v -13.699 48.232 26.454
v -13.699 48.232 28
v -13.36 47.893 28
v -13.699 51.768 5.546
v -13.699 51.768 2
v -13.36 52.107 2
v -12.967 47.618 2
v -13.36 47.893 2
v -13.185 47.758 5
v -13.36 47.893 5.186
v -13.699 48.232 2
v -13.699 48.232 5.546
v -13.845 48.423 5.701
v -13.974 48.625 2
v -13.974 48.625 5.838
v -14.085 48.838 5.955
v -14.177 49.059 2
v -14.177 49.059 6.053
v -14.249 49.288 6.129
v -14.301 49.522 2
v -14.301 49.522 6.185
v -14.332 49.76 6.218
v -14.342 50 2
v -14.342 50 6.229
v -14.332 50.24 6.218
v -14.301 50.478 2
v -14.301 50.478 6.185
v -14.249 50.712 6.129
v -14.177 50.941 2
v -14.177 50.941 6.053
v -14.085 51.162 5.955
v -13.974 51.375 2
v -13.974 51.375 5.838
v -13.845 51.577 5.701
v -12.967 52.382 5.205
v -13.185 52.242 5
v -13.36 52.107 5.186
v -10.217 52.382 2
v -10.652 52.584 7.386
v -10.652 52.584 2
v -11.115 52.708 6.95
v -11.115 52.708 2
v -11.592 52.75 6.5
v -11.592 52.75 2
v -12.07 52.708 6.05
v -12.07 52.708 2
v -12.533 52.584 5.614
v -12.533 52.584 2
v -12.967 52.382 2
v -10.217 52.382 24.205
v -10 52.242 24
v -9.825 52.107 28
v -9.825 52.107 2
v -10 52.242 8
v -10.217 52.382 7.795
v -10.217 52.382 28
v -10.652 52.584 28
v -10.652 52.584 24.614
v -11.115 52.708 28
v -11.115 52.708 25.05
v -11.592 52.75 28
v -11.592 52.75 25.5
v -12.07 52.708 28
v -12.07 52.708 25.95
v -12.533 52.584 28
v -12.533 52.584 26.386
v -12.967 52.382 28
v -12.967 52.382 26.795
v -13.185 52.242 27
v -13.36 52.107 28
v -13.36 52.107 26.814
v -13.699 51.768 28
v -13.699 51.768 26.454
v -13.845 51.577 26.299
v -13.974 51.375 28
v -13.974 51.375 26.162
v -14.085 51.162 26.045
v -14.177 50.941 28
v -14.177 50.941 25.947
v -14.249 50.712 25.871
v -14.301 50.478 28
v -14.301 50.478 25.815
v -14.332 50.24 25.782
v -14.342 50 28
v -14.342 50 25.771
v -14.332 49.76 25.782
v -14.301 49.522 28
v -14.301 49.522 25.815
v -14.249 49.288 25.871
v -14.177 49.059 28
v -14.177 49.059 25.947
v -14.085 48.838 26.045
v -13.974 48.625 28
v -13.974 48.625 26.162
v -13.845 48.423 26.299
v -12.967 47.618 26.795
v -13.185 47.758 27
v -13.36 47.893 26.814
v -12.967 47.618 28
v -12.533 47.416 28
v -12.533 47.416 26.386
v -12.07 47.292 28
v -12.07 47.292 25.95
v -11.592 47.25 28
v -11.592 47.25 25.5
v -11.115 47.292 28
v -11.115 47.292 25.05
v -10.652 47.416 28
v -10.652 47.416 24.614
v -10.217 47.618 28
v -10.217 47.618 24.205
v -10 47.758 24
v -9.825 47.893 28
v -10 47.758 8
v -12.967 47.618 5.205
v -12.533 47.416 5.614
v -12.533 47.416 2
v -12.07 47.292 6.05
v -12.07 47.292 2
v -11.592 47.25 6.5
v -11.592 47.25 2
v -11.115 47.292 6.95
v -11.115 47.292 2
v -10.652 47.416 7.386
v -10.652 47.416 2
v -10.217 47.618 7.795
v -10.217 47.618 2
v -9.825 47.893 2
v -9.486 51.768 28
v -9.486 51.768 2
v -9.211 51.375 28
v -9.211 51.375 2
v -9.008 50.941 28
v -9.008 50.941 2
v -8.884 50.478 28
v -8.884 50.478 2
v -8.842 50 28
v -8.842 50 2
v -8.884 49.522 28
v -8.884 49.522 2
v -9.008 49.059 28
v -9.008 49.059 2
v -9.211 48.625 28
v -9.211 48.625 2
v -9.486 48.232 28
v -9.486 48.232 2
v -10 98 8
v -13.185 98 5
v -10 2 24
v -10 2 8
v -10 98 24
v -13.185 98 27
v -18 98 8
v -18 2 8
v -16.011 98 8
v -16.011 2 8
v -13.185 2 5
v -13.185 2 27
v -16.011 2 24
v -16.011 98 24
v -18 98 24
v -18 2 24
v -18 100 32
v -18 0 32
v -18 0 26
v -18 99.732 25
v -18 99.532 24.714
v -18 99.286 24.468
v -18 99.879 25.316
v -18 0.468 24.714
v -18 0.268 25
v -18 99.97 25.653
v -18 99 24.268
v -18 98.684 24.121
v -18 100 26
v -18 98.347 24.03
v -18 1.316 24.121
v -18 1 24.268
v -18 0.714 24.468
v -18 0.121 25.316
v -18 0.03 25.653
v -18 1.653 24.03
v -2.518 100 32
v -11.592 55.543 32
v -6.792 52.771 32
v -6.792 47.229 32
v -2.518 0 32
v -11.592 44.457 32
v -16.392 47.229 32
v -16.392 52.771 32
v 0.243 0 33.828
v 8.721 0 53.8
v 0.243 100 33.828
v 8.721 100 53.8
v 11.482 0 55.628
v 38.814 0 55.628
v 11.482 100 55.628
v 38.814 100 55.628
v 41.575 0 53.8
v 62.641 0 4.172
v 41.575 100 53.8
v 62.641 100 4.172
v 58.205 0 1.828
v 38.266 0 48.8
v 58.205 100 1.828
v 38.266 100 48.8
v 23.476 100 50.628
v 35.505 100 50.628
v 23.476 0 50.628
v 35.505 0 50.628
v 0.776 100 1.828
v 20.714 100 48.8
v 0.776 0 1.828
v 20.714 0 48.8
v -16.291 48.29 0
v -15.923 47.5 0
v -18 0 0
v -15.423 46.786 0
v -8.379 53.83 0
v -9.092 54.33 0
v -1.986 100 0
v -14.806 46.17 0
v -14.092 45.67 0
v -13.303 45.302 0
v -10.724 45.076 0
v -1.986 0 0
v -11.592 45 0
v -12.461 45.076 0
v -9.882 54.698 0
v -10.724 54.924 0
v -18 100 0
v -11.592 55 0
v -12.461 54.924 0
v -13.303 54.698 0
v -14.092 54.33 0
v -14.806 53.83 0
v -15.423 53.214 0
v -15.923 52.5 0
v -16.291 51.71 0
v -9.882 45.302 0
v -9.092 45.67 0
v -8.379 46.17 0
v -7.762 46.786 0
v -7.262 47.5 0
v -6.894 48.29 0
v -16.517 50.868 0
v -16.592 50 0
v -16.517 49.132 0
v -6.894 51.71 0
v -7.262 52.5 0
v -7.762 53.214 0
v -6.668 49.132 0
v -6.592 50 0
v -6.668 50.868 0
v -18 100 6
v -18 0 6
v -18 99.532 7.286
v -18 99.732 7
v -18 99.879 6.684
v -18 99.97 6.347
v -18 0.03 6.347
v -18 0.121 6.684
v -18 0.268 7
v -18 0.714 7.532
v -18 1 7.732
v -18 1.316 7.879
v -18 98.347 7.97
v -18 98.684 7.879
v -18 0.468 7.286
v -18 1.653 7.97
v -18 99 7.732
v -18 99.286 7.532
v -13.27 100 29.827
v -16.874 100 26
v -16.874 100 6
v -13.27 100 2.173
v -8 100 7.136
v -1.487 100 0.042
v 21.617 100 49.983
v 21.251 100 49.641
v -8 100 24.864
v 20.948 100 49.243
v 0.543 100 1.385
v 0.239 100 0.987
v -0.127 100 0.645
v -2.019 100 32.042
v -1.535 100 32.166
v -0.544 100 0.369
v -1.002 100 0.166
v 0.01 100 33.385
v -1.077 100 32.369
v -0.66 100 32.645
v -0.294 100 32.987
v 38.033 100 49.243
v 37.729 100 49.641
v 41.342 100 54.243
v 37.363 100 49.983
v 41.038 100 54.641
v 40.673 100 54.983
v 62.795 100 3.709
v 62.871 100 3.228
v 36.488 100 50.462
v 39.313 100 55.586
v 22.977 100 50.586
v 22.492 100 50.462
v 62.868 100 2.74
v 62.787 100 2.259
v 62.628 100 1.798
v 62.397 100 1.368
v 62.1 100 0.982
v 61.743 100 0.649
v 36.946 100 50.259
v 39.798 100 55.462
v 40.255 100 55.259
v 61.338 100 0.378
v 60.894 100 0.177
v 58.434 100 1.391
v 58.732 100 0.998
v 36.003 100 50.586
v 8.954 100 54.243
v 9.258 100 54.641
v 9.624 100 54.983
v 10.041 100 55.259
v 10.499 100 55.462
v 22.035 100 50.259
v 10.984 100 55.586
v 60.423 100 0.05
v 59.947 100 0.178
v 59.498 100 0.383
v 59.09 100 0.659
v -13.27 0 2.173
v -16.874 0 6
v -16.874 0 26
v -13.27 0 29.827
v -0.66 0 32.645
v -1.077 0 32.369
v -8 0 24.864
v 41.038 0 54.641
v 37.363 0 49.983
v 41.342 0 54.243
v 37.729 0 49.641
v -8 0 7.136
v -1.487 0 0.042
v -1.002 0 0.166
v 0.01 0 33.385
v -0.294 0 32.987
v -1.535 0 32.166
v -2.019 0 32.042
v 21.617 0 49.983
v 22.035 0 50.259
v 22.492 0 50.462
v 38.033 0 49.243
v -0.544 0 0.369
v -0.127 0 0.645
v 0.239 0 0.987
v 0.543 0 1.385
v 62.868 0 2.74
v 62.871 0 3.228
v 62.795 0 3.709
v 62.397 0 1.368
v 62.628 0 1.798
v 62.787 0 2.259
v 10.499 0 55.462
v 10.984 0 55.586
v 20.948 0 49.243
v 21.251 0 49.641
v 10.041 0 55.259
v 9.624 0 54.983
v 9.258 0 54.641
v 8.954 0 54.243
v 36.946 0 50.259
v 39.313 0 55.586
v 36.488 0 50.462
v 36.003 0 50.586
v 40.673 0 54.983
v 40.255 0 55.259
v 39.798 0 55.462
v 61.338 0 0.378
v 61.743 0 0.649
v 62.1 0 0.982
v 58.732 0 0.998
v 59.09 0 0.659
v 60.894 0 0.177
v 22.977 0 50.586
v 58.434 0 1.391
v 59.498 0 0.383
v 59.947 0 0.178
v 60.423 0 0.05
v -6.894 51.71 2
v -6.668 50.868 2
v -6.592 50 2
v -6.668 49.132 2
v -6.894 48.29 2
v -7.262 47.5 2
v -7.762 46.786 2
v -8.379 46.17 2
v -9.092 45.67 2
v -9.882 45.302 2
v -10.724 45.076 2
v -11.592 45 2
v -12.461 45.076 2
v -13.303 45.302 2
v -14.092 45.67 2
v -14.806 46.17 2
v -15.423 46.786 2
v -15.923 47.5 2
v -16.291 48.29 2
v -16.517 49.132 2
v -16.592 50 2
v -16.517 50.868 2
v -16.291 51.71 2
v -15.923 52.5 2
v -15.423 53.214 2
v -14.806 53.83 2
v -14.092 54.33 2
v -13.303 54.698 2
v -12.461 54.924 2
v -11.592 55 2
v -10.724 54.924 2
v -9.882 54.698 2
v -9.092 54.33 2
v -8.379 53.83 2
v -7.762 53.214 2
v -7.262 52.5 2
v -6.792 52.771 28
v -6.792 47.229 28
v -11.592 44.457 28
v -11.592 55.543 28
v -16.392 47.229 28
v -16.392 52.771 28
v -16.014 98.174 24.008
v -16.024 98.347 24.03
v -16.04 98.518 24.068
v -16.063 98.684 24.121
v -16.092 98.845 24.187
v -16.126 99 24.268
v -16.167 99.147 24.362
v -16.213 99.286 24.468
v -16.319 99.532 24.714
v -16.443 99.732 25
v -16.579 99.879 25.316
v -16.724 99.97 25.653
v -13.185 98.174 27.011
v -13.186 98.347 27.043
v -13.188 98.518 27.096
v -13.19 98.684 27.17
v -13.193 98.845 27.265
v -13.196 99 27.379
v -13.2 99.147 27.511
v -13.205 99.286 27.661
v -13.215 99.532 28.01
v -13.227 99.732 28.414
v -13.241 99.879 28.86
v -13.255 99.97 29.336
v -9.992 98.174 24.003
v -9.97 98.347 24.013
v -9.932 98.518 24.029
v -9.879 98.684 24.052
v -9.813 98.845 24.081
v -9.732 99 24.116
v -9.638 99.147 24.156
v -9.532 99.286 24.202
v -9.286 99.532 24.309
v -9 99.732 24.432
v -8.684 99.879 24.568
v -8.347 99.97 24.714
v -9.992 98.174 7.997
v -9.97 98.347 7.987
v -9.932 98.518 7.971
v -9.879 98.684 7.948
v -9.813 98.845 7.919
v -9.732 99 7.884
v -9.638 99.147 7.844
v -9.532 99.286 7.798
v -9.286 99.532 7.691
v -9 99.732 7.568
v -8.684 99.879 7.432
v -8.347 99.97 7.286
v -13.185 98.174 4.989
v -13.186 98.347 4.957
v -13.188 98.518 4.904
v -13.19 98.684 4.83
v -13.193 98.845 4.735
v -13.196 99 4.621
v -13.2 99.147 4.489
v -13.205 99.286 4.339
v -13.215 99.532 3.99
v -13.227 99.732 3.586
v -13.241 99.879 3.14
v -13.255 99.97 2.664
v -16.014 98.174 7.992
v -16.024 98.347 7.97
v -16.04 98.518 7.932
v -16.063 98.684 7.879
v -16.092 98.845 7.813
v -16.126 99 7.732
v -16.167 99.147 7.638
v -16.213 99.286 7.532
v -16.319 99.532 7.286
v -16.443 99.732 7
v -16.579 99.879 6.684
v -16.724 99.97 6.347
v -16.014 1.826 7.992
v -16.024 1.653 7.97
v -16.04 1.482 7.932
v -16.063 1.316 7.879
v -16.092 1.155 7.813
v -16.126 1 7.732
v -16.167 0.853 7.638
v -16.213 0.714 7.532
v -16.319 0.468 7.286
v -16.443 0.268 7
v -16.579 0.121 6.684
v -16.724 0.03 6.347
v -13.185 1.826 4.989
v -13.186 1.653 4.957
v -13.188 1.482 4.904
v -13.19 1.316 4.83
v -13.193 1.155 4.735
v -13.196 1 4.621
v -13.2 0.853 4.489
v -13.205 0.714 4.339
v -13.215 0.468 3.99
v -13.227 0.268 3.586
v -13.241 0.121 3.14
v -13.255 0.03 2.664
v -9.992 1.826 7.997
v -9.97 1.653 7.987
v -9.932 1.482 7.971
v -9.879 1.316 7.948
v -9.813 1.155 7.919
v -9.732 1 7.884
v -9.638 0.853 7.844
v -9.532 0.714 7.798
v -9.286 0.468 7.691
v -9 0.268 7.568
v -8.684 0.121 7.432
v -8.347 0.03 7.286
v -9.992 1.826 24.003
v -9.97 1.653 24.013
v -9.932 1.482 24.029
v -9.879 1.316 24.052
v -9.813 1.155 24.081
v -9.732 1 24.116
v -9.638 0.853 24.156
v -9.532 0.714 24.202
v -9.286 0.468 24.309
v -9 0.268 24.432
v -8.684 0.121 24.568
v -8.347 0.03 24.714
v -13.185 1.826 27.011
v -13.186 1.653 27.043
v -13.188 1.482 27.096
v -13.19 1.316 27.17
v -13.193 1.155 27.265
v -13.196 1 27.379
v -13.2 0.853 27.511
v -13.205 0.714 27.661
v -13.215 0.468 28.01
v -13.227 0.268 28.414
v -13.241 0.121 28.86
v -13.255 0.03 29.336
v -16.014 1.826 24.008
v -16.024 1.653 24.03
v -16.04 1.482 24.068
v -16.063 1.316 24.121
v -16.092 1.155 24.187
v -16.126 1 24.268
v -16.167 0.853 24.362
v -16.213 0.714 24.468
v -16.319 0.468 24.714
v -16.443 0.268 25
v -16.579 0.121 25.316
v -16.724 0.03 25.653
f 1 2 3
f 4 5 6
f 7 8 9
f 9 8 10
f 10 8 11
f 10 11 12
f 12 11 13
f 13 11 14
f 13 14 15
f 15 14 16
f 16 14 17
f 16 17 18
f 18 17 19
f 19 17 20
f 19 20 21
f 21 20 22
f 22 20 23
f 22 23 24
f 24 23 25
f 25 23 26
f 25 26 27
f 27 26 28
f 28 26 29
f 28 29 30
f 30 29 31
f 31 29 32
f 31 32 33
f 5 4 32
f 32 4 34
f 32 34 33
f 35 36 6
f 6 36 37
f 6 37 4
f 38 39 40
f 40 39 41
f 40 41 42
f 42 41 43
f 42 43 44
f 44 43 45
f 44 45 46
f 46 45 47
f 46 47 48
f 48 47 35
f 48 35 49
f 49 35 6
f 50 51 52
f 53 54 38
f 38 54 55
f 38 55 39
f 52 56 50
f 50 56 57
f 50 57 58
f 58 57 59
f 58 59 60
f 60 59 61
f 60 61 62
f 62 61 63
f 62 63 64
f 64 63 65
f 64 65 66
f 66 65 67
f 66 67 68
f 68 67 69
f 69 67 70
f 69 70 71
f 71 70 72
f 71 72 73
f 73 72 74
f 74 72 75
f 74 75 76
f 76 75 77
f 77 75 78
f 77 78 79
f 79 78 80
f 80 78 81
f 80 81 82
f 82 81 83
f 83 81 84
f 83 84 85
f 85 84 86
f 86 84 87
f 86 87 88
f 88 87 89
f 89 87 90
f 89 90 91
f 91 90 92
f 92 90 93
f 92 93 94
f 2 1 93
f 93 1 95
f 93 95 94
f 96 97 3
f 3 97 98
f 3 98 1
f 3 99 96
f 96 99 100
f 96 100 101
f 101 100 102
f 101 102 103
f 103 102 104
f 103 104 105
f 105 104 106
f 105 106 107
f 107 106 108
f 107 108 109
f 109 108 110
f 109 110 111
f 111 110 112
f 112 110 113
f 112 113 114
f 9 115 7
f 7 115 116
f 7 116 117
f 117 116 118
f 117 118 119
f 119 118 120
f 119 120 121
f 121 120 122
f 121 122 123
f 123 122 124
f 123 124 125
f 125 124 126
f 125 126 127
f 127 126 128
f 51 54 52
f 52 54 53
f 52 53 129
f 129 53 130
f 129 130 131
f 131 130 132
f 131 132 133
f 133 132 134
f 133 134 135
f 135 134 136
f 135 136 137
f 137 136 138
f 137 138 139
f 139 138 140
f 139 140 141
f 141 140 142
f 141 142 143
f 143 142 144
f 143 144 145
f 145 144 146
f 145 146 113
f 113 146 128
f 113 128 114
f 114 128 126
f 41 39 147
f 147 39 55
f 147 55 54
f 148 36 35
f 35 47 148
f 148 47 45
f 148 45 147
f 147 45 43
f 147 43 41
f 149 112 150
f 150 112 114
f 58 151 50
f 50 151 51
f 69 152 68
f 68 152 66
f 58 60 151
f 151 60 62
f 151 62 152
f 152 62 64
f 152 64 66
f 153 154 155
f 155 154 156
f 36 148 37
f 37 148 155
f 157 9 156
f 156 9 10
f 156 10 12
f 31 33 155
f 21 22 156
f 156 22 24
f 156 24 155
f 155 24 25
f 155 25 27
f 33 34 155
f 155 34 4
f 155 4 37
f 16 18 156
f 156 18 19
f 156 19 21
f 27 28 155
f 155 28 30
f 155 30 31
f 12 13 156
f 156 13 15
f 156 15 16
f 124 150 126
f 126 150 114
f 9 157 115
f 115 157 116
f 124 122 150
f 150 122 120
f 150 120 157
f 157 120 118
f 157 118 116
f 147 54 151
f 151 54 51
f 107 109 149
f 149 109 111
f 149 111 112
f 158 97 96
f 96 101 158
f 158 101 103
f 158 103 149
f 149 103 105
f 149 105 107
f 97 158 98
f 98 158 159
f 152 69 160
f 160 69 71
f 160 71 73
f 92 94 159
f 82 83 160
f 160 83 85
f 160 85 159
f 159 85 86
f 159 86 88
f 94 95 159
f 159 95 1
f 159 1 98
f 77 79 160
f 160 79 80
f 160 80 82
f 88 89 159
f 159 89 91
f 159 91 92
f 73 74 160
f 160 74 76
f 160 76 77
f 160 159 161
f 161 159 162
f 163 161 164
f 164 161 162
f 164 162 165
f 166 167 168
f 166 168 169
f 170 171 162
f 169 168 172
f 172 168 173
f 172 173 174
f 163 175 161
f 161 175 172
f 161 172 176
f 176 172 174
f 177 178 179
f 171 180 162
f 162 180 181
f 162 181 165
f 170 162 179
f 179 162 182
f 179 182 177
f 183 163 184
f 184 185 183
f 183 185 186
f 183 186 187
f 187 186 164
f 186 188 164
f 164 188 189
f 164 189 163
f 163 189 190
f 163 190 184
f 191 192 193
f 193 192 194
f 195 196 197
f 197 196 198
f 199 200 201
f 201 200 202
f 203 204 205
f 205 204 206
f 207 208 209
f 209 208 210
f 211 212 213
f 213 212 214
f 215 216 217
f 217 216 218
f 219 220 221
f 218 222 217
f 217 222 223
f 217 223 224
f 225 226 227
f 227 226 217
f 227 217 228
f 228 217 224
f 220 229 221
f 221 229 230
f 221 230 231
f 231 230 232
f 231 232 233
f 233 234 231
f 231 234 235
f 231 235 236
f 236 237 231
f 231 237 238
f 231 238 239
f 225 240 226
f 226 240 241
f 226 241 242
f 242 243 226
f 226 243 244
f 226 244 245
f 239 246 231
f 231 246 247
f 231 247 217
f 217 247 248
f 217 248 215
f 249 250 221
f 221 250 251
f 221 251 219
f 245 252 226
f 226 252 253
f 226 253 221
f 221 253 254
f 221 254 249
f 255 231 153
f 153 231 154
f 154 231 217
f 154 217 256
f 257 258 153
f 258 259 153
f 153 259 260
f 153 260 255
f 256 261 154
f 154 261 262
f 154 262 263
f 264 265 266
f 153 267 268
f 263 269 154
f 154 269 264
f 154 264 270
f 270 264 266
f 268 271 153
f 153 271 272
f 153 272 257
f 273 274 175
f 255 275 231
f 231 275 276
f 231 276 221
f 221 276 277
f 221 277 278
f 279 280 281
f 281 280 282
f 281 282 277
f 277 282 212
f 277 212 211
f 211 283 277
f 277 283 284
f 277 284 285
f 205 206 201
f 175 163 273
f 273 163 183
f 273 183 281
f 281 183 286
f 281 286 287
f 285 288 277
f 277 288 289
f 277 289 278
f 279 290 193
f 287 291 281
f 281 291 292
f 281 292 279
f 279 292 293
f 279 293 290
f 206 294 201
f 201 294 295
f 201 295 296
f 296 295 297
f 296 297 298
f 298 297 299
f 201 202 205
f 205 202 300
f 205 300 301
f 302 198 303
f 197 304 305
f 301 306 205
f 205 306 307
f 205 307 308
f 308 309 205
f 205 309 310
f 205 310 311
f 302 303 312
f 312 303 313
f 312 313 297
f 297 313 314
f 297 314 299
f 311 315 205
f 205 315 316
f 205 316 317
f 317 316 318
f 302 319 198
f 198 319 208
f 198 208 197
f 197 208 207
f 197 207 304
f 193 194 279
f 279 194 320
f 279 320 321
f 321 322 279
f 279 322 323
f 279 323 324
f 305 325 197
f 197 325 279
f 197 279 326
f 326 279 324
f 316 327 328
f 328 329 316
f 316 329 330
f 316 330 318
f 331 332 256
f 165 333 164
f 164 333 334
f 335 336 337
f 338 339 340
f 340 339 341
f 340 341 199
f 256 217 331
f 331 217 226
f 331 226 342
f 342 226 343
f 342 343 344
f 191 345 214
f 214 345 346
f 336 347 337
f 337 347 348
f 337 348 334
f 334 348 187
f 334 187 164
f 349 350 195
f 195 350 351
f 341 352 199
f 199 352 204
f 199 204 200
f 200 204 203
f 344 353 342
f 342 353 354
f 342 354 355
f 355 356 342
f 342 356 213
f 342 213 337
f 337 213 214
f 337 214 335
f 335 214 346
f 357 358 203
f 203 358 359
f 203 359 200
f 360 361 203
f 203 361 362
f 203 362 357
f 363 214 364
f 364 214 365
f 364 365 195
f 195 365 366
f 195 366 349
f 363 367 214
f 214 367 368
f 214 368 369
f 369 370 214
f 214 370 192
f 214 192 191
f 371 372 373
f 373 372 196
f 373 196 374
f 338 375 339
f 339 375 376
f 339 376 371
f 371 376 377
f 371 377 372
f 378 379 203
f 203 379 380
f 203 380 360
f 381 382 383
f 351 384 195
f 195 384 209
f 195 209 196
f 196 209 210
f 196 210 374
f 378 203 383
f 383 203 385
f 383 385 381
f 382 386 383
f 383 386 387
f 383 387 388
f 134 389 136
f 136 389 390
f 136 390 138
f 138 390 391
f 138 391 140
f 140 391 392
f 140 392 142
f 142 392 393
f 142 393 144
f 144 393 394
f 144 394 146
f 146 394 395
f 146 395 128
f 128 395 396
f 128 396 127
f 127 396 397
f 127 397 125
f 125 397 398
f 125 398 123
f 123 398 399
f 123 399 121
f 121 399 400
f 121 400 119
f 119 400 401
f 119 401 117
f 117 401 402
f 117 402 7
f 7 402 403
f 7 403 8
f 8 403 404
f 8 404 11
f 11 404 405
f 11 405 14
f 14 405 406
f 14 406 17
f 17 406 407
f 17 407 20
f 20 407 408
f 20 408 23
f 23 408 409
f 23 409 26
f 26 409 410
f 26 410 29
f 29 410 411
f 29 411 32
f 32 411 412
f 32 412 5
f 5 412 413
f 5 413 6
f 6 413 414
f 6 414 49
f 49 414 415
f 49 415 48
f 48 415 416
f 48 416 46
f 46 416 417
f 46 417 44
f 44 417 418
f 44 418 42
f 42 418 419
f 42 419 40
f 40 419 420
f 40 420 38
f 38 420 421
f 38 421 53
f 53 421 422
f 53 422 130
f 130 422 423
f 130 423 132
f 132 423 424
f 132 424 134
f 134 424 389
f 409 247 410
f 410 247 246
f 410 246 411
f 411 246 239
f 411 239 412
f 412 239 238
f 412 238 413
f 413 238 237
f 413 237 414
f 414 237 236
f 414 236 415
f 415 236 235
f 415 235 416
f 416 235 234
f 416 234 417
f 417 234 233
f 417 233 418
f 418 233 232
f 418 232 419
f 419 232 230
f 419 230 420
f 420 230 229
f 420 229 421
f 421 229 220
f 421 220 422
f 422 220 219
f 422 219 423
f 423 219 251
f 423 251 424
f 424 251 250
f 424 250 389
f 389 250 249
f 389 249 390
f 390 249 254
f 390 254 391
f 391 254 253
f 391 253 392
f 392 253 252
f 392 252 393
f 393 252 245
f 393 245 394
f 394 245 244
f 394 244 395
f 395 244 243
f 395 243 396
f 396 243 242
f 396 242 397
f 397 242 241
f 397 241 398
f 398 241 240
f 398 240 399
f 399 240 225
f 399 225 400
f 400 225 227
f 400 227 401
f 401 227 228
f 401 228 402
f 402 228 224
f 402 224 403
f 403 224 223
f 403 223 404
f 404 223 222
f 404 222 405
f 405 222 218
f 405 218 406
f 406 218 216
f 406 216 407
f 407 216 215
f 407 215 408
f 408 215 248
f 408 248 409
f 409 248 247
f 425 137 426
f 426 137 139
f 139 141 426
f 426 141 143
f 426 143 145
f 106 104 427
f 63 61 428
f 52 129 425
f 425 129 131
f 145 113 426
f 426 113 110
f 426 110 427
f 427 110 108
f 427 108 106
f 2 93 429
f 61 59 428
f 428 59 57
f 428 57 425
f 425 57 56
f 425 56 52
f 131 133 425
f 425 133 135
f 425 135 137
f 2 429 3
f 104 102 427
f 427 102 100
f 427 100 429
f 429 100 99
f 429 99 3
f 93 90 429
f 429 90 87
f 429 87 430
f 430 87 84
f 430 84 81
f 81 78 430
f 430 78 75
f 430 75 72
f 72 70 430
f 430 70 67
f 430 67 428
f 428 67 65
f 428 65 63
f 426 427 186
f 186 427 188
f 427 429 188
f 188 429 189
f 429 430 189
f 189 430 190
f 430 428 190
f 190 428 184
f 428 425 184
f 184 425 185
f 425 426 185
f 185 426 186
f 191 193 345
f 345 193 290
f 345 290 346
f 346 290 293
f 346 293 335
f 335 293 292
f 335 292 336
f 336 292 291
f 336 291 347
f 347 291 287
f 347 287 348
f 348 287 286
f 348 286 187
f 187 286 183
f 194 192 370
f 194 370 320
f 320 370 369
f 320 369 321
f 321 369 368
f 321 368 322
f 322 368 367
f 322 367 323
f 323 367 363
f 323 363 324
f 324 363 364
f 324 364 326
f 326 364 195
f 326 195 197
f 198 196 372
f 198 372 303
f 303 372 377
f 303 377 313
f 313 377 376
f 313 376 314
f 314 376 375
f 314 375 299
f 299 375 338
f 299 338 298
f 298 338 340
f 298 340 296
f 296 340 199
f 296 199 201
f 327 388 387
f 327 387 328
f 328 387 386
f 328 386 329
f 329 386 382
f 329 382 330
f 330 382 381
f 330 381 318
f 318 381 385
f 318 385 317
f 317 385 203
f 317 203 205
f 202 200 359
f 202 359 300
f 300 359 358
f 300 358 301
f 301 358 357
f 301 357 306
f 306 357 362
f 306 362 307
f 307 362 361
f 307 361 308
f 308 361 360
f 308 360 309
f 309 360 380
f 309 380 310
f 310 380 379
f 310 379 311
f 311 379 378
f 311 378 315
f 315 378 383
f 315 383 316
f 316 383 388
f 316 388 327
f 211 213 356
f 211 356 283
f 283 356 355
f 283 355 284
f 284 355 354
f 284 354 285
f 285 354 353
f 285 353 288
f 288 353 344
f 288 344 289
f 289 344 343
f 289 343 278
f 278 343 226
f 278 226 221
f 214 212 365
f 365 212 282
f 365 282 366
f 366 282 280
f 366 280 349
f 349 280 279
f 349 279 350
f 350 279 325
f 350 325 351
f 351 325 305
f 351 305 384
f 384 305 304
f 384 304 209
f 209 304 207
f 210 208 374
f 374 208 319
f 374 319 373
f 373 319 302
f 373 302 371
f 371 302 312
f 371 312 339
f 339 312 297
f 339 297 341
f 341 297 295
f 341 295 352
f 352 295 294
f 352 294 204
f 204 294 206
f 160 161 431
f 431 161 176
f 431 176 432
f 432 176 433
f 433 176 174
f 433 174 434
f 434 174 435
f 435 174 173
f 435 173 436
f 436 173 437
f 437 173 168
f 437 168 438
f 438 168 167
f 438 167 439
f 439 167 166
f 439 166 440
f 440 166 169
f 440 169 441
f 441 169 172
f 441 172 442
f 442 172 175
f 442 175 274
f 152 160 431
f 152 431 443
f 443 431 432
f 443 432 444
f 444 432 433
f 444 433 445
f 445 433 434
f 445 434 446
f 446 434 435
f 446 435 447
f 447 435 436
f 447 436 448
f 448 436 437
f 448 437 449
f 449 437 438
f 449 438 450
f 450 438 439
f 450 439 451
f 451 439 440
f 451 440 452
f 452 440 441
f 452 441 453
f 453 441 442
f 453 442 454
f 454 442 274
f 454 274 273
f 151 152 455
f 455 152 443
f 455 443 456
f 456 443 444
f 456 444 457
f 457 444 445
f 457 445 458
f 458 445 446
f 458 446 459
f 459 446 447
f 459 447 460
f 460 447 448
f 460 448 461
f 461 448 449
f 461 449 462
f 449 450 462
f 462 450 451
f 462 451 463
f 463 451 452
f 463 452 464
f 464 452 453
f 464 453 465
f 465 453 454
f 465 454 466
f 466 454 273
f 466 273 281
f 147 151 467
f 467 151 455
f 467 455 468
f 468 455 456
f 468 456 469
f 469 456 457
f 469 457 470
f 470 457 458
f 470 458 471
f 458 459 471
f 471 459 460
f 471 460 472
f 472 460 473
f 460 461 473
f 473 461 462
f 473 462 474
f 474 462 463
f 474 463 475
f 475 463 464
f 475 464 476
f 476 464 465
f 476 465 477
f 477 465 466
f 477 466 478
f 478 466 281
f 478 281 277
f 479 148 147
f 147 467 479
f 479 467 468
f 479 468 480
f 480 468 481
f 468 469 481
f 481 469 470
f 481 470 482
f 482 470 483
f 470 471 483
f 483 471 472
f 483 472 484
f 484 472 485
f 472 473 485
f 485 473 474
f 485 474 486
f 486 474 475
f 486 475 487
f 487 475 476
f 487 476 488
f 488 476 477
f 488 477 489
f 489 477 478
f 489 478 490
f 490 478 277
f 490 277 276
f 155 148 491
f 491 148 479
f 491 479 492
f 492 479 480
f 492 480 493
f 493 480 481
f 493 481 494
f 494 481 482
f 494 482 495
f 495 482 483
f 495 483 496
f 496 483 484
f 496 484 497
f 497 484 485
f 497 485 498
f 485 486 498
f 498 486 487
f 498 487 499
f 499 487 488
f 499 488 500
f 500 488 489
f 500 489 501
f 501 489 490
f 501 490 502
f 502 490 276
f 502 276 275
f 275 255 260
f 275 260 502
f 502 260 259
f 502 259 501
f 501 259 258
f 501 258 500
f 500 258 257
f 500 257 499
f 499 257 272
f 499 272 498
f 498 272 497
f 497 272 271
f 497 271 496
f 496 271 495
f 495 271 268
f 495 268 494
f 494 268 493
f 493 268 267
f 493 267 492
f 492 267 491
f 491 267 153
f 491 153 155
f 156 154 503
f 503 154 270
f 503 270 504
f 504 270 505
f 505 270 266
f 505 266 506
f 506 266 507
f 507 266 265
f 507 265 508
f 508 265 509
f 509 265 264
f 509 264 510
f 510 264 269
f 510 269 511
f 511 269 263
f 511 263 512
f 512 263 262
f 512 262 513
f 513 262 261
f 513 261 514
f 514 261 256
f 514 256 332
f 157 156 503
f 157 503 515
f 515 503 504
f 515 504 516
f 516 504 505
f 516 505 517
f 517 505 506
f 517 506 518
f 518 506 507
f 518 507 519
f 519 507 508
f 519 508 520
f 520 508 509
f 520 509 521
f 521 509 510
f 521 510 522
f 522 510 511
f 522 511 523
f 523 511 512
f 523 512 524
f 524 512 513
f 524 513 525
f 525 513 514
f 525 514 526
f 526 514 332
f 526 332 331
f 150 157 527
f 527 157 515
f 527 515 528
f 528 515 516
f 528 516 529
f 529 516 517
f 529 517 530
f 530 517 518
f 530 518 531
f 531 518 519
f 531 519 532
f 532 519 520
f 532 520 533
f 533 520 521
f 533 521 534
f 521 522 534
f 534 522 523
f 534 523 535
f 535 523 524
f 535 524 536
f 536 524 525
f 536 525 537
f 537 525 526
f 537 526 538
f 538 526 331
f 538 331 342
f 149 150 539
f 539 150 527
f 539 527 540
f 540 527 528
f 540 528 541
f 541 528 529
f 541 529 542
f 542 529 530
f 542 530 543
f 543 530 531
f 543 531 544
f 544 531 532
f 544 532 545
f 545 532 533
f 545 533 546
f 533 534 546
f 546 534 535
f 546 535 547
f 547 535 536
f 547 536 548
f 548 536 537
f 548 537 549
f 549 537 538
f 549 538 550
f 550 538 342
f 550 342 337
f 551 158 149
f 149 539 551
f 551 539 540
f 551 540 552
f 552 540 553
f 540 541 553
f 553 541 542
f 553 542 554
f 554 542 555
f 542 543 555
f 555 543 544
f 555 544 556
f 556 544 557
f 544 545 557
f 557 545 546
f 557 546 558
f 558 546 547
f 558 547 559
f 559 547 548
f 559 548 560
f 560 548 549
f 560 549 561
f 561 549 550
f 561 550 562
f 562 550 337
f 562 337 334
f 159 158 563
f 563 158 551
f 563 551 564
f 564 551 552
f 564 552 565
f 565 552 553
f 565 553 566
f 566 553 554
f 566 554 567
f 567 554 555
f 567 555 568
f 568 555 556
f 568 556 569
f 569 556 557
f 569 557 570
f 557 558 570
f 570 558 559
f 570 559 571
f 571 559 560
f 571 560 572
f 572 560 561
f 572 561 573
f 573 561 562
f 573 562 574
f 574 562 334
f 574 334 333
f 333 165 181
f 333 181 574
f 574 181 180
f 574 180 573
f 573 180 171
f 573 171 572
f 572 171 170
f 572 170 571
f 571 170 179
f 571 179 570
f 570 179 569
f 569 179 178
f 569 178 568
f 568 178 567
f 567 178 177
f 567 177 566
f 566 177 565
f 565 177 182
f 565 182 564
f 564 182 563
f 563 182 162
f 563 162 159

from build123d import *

# Parameters (mm, degrees)
BOSS_EXTRUDE1_DEPTH = 100
SKETCH2_R           = 2.75
CUT_EXTRUDE1_DEPTH  = 132.314063663
SKETCH3_R           = 5
CUT_EXTRUDE2_DEPTH  = 2
CUT_EXTRUDE3_DEPTH  = 4
FILLET3_R           = 3
FILLET6_R           = 2


with BuildPart() as part:
    # Sketch1 → Boss-Extrude1 (new body)
    with BuildSketch(Plane(origin=(0, 0, 0), x_dir=(1, 0, 0), z_dir=(0, 1, 0))):
        Polygon((-16.010741182, -8), (-13.18496009, -5), (-10, -8), (-10, -24), (-13.18496009, -27), (-16.010741182, -24), (-18, -24), (-18, -32), (-10, -32), (-0.5326227, -32), (9.496769329, -55.62776694), (40.799639873, -55.62776694), (64.412226021, 0), (58.980424134, 0), (37.490212067, -50.62776694), (21.490212067, -50.62776694), (0, 0), (-10, 0), (-18, 0), (-18, -8), align=None)
    extrude(amount=BOSS_EXTRUDE1_DEPTH)

    # Sketch2 → Cut-Extrude1 (cut, through all)
    with BuildSketch(Plane(origin=(0, 0, 0), x_dir=(-1, 0, 0), z_dir=(0, 0, -1))):
        with Locations((11.592480045, 50)):
            Circle(SKETCH2_R)
    extrude(amount=-CUT_EXTRUDE1_DEPTH, mode=Mode.SUBTRACT)

    # Sketch3 → Cut-Extrude2 (cut)
    with BuildSketch(Plane(origin=(0, 0, 0), x_dir=(-1, 0, 0), z_dir=(0, 0, -1))):
        with Locations((11.592480045, 50)):
            Circle(SKETCH3_R)
    extrude(amount=-CUT_EXTRUDE2_DEPTH, mode=Mode.SUBTRACT)

    # Sketch4 → Cut-Extrude3 (cut)
    with BuildSketch(Plane.XY.offset(32)):
        Polygon((-6.792480045, 47.228718708), (-6.792480045, 52.771281292), (-11.592480045, 55.542562584), (-16.392480045, 52.771281292), (-16.392480045, 47.228718708), (-11.592480045, 44.457437416), align=None)
    extrude(amount=-CUT_EXTRUDE3_DEPTH, mode=Mode.SUBTRACT)

    # Fillet3
    # the kernel refuses this fillet: 3 mm, written as the material it adds along each edge
    with BuildSketch(Plane(origin=(21.490212067, 0, 50.62776694), x_dir=(1, 0, 0), z_dir=(0, 1, 0)), Plane(origin=(37.490212067, 0, 50.62776694), x_dir=(0.39073112848927616, 0, -0.9205048534524394), z_dir=(0, 1, 0)), Plane(origin=(-0.5326227, 0, 32), x_dir=(-1, 0, 0), z_dir=(0, 1, 0))) as fillet3_piece_1:
        with BuildLine():
            CenterArc((FILLET3_R * 0.661885561196, FILLET3_R), FILLET3_R, 203, 67)
            Line((-FILLET3_R * 0.258619292257, FILLET3_R * 0.609268871511), (0, 0))
            Line((0, 0), (FILLET3_R * 0.661885561196, 0))
        make_face()
    extrude(amount=100)
    # the kernel refuses this fillet: 3 mm, written as the material it takes off along each edge
    with BuildSketch(Plane(origin=(0, -4.964141709, 0), x_dir=(0.39073112848927805, 0, 0.9205048534524385), z_dir=(0, 1, 0)), Plane(origin=(58.980424134, -4.964141709, 0), x_dir=(1, 0, 0), z_dir=(0, 1, 0)), Plane(origin=(40.799639873, -4.964141709, 55.62776694), x_dir=(-1, 0, 0), z_dir=(0, 1, 0)), Plane(origin=(9.496769329, -4.964141709, 55.62776694), x_dir=(-0.3907311284892769, 0, -0.920504853452439), z_dir=(0, 1, 0))) as fillet3_2_piece_1:
        with BuildLine():
            CenterArc((FILLET3_R * 0.661885561196, -FILLET3_R), FILLET3_R, 90, 67)
            Line((-FILLET3_R * 0.258619292257, -FILLET3_R * 0.609268871511), (0, 0))
            Line((0, 0), (FILLET3_R * 0.661885561196, 0))
        make_face()
    extrude(amount=109.928283418, mode=Mode.SUBTRACT)
    with BuildSketch(Plane(origin=(64.412226021, -11.331263952, 0), x_dir=(-0.3907311284892779, 0, 0.9205048534524386), z_dir=(0, 1, 0))) as fillet3_2_piece_2:
        with BuildLine():
            CenterArc((FILLET3_R * 1.51083519361, -FILLET3_R), FILLET3_R, 90, 113)
            Line((FILLET3_R * 0.590330340162, -FILLET3_R * 1.39073112849), (0, 0))
            Line((0, 0), (FILLET3_R * 1.51083519361, 0))
        make_face()
    extrude(amount=122.662527904, mode=Mode.SUBTRACT)

    # Fillet6
    fillet6_edges = [part.edges().sort_by_distance(p)[0] for p in [
        (-11.592480045, 100, 6.5),
        (-10, 100, 16),
        (-11.592480045, 100, 25.5),
        (-14.597850636, 100, 25.5),
        (-17.005370591, 100, 24),
        (-17.005370591, 0, 24),
        (-14.597850636, 0, 25.5),
        (-11.592480045, 0, 25.5),
        (-10, 0, 16),
        (-11.592480045, 0, 6.5),
        (-14.597850636, 0, 6.5),
        (-17.005370591, 0, 8),
        (-17.005370591, 100, 8),
        (-14.597850636, 100, 6.5),
    ]]
    fillet(fillet6_edges, radius=FILLET6_R)


solid = part.part
